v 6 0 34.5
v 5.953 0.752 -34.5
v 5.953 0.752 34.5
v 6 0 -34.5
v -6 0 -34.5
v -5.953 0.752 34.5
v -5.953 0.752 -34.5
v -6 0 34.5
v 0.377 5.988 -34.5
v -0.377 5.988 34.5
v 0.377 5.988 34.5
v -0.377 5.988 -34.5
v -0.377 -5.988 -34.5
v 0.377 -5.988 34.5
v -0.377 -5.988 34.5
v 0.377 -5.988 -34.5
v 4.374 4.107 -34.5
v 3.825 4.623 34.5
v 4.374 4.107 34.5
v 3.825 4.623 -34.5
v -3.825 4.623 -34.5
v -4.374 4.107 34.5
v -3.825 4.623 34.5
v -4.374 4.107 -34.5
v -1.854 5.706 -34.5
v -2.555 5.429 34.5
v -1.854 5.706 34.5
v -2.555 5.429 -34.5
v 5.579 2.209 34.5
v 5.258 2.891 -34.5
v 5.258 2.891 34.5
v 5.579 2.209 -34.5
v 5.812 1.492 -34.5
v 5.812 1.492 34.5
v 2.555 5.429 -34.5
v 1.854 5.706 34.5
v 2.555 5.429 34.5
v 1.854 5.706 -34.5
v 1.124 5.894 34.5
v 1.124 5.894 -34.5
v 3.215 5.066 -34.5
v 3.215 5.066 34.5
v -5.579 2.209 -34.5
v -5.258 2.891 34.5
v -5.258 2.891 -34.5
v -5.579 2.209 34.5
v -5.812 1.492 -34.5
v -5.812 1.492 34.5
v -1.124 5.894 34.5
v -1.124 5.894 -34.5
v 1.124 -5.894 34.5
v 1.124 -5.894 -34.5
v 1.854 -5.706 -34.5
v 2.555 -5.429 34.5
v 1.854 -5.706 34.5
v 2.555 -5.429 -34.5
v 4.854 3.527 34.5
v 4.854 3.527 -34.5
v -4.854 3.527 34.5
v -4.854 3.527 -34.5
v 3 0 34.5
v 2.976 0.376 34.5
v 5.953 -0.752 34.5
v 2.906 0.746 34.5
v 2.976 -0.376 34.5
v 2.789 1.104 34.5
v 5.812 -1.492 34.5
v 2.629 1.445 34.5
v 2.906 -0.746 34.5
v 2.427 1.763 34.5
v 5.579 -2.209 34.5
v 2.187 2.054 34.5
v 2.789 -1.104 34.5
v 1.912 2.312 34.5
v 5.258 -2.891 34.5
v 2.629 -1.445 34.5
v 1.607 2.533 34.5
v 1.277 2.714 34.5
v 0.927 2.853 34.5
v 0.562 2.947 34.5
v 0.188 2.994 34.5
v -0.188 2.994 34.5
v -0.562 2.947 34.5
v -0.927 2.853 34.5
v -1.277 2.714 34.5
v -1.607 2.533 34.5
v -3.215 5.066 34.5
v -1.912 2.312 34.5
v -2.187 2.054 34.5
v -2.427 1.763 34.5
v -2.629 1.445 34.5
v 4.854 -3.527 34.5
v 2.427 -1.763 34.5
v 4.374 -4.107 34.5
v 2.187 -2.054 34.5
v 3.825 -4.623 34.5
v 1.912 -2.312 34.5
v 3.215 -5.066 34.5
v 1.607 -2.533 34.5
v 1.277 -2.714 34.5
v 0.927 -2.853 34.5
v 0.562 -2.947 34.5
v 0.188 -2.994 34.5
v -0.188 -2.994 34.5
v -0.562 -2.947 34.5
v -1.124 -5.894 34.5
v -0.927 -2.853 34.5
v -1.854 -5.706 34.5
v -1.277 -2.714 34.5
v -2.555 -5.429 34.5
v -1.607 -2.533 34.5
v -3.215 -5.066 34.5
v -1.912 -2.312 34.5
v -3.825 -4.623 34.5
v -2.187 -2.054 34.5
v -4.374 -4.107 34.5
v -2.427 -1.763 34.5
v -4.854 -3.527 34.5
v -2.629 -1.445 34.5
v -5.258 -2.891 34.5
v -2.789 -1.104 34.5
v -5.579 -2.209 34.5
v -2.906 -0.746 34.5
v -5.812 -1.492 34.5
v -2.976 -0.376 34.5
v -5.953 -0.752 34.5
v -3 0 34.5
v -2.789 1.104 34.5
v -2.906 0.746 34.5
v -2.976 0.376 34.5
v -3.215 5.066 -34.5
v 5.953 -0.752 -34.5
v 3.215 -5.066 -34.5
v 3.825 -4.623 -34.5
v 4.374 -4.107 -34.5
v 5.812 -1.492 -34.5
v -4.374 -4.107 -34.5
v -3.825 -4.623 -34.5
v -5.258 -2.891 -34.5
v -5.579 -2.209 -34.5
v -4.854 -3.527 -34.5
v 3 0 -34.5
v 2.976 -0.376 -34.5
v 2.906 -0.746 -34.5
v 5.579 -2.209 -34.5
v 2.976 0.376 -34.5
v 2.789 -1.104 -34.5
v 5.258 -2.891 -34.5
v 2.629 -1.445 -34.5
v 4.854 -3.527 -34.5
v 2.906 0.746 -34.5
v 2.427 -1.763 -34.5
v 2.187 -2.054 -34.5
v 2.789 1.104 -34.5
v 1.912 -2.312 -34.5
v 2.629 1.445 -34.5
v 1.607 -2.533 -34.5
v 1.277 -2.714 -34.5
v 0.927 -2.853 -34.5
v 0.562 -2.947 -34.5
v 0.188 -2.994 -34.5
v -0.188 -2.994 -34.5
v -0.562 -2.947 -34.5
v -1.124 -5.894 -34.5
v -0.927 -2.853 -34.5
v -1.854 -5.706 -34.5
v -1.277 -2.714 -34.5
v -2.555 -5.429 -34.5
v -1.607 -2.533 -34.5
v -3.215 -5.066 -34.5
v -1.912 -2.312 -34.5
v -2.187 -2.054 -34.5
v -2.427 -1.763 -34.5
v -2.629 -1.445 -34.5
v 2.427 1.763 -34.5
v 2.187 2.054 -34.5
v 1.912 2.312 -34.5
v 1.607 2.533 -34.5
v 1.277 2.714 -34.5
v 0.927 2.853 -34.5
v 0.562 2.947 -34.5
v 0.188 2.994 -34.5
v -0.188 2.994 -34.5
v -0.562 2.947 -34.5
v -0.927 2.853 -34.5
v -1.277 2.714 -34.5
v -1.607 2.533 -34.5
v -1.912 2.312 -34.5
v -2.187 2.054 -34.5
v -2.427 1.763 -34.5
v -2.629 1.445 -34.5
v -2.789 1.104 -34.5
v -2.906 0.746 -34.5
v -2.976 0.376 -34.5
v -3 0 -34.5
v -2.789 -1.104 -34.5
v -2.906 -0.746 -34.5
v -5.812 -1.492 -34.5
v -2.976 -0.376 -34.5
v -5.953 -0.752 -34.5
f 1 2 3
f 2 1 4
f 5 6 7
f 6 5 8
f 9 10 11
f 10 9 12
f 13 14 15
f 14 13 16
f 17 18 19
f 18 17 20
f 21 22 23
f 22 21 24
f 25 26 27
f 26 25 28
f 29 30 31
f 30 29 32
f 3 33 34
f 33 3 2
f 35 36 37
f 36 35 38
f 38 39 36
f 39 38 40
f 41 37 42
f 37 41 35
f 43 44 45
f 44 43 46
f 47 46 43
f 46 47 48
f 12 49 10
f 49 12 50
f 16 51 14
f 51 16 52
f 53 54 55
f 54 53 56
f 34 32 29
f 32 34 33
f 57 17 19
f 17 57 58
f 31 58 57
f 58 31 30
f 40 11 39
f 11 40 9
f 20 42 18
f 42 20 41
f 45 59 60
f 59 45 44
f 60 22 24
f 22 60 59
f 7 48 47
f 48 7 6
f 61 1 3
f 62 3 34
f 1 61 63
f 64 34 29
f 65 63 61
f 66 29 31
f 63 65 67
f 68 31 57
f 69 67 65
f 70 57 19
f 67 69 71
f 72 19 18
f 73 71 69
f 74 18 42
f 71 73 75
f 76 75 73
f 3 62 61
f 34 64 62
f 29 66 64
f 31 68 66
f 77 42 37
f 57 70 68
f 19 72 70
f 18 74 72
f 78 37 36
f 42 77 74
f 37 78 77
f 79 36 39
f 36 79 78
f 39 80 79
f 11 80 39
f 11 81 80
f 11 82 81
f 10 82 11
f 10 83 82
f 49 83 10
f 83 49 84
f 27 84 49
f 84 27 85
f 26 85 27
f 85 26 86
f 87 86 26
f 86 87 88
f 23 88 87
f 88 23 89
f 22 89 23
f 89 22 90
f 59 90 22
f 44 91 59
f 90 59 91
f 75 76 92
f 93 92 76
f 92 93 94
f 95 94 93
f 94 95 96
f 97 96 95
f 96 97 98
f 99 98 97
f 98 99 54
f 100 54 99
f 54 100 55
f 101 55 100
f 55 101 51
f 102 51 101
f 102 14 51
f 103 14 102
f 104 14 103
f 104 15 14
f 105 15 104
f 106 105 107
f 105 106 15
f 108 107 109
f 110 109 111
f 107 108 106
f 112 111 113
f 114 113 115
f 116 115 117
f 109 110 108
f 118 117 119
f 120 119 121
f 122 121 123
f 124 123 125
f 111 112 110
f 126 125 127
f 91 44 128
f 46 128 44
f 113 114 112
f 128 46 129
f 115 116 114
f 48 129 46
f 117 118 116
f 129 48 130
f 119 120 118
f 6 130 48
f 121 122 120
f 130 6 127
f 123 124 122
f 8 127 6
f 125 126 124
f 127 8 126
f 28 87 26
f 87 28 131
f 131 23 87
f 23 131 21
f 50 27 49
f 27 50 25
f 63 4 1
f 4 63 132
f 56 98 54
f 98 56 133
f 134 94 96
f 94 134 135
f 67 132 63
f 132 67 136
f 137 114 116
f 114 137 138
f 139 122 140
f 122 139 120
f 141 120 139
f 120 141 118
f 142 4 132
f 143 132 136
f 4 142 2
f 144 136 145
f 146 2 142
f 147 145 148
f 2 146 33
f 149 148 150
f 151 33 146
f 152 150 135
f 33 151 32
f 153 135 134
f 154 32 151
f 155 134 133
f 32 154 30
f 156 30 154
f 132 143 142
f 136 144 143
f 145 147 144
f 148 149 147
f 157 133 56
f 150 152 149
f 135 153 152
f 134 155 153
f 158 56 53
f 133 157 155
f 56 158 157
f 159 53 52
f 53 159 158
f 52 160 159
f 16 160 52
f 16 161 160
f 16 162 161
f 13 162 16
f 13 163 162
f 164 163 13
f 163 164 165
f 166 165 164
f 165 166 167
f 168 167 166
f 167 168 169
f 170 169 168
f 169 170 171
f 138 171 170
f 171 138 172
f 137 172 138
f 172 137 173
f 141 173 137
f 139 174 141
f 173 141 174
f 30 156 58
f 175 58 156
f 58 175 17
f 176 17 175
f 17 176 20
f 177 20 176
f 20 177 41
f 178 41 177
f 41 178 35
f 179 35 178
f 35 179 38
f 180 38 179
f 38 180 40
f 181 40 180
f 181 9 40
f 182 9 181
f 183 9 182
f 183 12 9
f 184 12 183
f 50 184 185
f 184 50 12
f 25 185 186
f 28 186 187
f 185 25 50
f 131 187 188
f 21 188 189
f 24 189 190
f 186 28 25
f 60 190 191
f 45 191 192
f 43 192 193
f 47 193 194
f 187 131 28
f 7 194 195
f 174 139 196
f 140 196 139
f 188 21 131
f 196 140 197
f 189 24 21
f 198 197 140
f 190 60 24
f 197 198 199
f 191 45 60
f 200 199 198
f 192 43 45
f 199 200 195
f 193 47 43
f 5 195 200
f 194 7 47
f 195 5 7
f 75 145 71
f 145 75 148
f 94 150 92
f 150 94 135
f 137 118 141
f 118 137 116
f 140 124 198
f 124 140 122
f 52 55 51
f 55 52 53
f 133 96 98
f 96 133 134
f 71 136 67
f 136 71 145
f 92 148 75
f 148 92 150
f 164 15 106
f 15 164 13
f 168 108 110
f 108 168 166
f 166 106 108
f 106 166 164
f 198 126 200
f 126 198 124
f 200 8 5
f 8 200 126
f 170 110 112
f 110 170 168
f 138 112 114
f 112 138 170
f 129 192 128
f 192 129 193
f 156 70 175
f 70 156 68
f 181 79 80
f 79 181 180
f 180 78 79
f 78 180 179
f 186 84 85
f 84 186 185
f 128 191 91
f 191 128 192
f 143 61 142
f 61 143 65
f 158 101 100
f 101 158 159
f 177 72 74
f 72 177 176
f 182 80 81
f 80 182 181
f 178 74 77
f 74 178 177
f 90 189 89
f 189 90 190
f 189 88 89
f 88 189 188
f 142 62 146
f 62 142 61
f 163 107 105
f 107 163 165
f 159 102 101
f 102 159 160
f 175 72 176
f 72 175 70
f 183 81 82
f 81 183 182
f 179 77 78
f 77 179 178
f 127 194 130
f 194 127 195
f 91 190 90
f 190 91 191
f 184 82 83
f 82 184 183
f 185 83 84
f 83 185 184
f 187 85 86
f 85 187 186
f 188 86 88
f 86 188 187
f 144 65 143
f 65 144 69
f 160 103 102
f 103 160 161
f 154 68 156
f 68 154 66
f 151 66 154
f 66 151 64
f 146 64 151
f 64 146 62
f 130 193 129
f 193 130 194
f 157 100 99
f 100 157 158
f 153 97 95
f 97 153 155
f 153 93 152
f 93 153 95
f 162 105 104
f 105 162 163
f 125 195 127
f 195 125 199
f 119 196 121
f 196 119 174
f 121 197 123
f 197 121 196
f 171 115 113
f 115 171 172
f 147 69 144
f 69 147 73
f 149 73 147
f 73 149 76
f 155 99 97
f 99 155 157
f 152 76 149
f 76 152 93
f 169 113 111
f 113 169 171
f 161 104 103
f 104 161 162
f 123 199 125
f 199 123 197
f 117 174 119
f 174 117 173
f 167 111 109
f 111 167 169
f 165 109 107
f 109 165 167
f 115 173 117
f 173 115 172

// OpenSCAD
$fn = 50;


difference() {
	union() {
		translate(v = [0, 0, -34.5000000000]) {
			cylinder(h = 69, r = 6.0000000000);
		}
	}
	union() {
		translate(v = [0, 0, -100.0000000000]) {
			cylinder(h = 200, r = 3);
		}
	}
}
